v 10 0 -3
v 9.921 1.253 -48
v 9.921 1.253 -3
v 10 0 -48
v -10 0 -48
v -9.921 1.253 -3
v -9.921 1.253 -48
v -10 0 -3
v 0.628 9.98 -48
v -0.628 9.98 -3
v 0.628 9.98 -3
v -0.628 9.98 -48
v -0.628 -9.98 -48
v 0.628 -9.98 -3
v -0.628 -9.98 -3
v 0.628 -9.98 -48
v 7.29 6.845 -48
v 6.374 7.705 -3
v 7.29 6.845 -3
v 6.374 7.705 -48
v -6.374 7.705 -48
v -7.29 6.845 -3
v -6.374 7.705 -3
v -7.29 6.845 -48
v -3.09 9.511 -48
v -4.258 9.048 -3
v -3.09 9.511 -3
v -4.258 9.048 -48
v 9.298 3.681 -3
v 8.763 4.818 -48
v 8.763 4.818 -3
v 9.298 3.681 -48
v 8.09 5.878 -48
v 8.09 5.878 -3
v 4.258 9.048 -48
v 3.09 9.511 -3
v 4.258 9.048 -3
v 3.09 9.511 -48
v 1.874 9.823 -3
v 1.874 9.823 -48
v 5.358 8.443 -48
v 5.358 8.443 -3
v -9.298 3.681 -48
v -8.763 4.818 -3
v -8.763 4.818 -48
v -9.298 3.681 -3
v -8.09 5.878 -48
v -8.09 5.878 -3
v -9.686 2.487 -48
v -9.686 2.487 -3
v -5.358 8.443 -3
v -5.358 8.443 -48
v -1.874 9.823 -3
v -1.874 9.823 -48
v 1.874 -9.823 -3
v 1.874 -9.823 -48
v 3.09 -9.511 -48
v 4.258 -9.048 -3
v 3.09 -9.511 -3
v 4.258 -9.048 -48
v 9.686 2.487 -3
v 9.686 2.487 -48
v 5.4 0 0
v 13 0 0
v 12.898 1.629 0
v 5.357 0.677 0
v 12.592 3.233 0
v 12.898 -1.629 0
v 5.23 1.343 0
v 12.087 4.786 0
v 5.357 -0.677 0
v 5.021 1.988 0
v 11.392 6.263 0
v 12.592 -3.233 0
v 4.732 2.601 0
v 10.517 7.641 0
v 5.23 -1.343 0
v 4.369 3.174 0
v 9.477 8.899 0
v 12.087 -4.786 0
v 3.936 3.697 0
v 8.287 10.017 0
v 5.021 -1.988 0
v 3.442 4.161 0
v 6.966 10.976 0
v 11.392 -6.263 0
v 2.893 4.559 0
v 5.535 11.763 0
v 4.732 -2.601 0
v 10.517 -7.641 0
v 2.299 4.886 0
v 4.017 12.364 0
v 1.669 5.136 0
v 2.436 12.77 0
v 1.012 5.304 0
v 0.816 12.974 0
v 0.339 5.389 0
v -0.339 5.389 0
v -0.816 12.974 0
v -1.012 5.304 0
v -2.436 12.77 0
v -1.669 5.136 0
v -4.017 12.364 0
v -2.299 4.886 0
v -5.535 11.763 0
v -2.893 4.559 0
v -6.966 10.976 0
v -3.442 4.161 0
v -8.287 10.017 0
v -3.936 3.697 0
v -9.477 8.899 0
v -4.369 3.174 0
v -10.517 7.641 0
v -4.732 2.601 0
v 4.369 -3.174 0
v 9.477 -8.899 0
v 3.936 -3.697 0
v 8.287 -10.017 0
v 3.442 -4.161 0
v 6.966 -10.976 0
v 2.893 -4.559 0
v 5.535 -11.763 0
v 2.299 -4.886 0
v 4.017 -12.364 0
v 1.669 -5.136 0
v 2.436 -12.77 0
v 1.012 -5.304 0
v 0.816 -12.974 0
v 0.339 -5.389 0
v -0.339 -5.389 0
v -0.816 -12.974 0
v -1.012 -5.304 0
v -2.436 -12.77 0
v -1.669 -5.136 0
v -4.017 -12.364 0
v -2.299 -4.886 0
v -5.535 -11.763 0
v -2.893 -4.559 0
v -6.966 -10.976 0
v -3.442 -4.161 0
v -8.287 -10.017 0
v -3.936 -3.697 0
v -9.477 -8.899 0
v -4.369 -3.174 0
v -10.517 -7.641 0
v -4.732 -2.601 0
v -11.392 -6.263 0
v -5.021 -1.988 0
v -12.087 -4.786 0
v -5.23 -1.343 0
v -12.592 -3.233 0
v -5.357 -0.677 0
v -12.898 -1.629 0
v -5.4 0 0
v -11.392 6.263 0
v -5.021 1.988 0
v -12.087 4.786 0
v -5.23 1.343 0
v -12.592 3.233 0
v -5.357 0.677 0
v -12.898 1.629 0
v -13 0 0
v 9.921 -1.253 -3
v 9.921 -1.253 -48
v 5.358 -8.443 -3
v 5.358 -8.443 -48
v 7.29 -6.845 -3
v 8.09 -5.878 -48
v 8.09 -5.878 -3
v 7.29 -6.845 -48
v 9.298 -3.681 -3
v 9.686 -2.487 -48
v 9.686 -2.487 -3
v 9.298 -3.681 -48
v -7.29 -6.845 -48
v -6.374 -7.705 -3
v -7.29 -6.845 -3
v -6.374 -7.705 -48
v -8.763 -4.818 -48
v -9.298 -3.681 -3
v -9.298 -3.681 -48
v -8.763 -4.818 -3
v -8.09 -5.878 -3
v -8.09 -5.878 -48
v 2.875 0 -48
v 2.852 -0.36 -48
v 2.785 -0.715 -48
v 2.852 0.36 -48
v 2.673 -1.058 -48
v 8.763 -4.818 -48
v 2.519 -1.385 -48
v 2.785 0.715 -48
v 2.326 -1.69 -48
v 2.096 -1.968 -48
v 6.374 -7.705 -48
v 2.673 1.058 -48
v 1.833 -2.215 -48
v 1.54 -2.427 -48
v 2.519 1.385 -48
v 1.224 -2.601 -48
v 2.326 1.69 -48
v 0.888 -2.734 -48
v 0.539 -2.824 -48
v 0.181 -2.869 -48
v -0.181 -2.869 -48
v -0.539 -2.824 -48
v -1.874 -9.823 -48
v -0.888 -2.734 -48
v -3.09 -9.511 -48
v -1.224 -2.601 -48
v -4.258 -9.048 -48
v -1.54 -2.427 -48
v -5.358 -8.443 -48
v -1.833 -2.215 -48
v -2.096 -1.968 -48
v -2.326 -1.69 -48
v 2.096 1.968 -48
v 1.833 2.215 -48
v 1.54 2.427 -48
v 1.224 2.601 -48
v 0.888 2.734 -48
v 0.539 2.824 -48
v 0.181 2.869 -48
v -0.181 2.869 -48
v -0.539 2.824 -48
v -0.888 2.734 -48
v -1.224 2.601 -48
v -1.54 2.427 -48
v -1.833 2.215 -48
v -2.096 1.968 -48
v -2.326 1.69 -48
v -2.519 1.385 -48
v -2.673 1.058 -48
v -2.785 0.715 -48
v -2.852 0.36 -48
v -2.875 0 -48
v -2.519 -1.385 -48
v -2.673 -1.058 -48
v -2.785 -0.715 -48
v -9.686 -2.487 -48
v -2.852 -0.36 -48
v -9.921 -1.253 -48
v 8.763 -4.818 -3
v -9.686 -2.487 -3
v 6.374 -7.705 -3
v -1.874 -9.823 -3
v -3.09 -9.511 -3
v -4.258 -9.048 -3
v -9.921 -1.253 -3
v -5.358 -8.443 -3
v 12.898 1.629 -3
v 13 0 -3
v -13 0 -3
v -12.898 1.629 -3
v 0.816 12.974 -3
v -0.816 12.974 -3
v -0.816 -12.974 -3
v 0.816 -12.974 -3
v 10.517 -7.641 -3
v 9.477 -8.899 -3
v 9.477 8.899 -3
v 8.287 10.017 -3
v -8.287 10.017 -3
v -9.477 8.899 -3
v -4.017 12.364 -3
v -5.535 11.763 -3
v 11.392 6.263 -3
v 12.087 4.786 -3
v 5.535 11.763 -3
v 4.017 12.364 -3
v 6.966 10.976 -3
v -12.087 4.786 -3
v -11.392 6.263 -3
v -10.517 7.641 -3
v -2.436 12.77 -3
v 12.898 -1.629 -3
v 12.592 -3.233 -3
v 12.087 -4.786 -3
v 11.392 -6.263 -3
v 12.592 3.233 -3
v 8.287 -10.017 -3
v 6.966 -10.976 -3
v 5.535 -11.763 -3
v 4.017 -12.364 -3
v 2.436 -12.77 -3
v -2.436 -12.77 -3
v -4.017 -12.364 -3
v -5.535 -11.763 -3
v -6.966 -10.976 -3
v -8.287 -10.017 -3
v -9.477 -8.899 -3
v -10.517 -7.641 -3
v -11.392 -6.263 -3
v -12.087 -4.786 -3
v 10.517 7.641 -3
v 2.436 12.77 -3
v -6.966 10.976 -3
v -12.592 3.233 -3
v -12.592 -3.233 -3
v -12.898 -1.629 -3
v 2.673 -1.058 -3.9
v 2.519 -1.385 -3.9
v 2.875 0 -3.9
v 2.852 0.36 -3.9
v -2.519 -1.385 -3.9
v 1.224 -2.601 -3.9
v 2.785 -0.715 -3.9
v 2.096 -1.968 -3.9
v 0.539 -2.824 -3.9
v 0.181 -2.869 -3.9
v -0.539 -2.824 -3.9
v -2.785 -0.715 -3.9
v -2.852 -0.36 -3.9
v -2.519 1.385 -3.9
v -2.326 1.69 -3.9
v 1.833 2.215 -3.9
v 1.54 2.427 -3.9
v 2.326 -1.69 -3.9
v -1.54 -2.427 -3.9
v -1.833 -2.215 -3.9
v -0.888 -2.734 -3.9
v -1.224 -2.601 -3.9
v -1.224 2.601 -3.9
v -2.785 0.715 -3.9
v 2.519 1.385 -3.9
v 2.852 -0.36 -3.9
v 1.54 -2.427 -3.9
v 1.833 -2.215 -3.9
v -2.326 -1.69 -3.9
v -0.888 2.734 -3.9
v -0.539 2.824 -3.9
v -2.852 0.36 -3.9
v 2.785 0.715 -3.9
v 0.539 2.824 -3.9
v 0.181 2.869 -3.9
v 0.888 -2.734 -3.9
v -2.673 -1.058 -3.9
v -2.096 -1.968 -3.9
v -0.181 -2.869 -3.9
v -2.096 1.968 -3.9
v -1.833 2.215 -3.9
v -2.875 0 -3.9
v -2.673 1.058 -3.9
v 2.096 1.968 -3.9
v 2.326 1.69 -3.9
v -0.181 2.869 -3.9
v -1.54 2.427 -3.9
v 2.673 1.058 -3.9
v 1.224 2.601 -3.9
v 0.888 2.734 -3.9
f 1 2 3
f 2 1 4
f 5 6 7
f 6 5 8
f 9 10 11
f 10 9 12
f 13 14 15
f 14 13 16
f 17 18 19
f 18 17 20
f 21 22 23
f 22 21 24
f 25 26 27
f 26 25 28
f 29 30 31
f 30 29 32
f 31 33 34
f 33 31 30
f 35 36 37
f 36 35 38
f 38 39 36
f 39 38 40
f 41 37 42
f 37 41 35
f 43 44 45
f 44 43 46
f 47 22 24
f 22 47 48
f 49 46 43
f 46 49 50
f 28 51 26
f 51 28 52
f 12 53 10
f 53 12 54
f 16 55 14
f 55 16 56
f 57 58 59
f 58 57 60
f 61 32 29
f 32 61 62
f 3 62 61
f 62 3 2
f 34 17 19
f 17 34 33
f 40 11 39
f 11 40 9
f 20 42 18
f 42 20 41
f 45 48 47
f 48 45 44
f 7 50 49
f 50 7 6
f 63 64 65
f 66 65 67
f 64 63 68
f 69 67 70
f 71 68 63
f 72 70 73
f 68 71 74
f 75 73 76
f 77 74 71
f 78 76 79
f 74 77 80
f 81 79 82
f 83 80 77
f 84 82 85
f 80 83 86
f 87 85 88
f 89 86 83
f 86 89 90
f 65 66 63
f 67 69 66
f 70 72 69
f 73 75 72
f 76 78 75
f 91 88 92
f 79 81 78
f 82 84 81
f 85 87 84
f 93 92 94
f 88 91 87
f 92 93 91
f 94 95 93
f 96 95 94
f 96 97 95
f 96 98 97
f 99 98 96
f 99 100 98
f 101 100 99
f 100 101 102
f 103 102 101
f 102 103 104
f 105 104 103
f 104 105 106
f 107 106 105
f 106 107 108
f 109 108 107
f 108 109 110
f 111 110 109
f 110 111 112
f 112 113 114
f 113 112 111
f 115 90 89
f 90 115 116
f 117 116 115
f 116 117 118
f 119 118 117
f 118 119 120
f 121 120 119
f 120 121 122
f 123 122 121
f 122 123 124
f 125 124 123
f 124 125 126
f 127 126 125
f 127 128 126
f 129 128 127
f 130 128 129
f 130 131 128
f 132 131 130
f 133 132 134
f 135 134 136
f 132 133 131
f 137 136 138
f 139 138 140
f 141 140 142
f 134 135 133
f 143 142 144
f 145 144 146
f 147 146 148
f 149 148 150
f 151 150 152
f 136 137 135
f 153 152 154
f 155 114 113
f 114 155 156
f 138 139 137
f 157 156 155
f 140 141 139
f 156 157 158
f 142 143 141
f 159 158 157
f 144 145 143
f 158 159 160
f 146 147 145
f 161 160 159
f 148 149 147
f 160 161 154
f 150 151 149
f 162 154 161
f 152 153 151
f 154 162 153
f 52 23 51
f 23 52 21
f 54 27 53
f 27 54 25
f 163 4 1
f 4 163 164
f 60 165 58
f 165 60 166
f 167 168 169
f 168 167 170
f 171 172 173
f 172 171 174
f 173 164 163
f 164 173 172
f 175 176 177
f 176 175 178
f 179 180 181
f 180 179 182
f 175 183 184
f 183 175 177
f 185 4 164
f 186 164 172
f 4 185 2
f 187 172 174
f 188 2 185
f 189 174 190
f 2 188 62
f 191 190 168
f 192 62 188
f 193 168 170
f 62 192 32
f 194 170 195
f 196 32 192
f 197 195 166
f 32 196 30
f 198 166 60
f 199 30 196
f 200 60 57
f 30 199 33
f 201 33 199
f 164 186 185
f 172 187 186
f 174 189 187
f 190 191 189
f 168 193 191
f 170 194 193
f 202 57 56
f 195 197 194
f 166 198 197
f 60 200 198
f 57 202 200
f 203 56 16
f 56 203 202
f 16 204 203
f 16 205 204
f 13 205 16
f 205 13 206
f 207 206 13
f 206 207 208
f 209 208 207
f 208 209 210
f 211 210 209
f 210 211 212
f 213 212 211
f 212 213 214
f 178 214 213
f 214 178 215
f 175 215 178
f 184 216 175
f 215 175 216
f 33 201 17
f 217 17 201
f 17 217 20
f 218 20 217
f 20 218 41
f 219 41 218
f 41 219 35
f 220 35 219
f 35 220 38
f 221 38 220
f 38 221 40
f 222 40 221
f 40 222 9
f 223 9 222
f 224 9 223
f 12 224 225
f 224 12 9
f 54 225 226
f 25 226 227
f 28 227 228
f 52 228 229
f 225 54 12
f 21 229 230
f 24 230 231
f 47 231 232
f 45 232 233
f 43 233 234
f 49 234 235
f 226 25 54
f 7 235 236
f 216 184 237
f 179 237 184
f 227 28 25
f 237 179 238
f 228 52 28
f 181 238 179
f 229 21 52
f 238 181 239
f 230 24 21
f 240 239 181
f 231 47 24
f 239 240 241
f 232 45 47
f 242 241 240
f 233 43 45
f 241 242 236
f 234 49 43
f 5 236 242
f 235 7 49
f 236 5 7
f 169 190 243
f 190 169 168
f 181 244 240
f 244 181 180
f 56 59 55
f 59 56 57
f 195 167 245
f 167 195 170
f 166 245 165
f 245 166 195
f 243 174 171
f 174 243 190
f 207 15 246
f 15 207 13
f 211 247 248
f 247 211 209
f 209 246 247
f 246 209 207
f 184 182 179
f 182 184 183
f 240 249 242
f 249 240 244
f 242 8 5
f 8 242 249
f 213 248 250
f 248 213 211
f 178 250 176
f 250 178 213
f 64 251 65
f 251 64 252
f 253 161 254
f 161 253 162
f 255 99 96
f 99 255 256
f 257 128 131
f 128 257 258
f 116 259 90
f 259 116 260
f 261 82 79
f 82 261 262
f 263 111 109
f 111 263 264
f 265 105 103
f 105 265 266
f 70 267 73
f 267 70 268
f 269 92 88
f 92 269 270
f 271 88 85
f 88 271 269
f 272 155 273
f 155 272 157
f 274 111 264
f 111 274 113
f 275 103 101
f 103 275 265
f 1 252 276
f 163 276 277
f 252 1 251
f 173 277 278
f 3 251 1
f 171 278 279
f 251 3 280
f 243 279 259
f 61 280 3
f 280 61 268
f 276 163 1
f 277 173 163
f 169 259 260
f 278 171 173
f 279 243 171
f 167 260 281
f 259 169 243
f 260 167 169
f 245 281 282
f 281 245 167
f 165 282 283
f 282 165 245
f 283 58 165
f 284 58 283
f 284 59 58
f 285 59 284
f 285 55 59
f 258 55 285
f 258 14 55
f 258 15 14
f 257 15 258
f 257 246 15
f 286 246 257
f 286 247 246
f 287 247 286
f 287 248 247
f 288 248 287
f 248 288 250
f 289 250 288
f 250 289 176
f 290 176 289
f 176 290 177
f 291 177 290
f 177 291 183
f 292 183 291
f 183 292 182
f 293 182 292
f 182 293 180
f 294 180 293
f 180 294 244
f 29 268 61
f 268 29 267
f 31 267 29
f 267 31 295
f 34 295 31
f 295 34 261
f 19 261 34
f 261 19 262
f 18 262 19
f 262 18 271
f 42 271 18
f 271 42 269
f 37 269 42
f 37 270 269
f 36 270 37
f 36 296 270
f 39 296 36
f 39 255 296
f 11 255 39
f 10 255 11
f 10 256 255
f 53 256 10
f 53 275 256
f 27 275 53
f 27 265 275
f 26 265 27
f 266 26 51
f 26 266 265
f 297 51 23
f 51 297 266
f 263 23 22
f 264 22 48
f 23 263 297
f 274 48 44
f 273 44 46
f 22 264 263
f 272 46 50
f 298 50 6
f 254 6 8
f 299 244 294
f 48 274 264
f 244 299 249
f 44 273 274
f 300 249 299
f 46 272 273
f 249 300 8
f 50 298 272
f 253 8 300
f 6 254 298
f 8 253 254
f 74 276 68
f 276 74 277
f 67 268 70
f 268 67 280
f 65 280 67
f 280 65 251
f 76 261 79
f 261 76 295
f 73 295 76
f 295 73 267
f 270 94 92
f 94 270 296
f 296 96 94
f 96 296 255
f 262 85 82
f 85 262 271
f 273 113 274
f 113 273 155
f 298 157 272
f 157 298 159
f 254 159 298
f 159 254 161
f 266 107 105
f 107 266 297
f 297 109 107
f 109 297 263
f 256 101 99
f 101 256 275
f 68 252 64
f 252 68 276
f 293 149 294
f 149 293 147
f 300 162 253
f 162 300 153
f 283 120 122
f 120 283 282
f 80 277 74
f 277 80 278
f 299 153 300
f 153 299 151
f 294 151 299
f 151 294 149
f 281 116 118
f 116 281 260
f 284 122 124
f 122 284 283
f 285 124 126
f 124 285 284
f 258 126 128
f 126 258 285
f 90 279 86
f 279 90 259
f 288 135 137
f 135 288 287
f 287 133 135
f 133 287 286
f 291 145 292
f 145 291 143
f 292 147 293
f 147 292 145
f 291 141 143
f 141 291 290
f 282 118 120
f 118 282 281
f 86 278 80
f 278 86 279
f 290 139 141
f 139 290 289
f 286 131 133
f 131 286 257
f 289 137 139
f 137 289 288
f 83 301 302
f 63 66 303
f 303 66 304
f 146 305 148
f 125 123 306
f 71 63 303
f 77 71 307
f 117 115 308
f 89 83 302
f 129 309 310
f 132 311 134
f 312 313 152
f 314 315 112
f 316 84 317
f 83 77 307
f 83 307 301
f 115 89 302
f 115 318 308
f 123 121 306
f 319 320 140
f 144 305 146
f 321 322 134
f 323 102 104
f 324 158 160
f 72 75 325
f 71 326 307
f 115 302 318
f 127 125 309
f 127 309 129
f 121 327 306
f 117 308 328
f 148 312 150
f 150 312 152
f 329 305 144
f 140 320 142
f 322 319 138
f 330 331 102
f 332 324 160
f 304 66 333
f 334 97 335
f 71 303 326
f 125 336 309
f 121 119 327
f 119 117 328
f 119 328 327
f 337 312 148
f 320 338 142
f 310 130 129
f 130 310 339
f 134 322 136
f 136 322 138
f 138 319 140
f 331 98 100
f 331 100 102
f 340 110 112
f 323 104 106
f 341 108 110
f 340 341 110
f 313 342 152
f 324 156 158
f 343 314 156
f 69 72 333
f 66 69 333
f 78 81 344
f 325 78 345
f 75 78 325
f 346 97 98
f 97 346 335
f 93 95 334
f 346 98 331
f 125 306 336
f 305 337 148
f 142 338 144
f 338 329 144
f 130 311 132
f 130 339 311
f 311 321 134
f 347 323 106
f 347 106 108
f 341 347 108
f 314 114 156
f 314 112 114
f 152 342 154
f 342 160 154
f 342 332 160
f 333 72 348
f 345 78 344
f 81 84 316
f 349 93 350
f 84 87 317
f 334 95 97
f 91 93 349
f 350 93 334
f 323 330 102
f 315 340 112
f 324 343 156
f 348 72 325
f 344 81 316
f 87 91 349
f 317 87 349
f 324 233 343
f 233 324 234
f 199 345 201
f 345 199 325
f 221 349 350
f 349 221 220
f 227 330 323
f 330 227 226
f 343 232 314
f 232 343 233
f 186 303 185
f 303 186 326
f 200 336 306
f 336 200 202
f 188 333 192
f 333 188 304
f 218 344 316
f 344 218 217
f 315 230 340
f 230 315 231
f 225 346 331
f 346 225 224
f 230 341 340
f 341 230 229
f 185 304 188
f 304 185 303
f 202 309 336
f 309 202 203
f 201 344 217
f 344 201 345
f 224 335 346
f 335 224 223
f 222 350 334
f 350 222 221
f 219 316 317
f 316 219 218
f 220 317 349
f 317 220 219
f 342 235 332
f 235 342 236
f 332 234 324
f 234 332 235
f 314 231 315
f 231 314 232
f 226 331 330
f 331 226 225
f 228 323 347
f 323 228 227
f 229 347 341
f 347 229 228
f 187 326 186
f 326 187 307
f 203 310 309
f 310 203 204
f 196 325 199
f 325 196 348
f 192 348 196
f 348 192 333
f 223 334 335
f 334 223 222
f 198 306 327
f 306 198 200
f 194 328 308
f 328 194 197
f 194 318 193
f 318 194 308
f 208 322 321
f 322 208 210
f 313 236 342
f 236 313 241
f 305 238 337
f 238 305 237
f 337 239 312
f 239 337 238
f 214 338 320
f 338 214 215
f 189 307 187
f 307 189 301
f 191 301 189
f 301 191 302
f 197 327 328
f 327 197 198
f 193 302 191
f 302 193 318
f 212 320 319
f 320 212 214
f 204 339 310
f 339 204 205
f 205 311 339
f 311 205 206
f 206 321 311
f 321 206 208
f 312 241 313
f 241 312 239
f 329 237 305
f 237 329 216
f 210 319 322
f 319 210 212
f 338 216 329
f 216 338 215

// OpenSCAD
$fn = 50;


difference() {
	union() {
		translate(v = [0, 0, -48.0000000000]) {
			cylinder(h = 48, r = 10.0000000000);
		}
		translate(v = [0, 0, -3.0000000000]) {
			cylinder(h = 3, r = 13.0000000000);
		}
	}
	union() {
		translate(v = [0, 0, 0]) {
			rotate(a = [0, 0, 0]) {
				difference() {
					union() {
						#translate(v = [0, 0, -48.0000000000]) {
							cylinder(h = 48, r = 2.6000000000);
						}
						#translate(v = [0, 0, -3.9000000000]) {
							cylinder(h = 3.9000000000, r1 = 2.8750000000, r2 = 5.4000000000);
						}
						#translate(v = [0, 0, -48.0000000000]) {
							cylinder(h = 48, r = 2.8750000000);
						}
						#translate(v = [0, 0, -48.0000000000]) {
							cylinder(h = 48, r = 2.6000000000);
						}
					}
					union();
				}
			}
		}
	}
}
